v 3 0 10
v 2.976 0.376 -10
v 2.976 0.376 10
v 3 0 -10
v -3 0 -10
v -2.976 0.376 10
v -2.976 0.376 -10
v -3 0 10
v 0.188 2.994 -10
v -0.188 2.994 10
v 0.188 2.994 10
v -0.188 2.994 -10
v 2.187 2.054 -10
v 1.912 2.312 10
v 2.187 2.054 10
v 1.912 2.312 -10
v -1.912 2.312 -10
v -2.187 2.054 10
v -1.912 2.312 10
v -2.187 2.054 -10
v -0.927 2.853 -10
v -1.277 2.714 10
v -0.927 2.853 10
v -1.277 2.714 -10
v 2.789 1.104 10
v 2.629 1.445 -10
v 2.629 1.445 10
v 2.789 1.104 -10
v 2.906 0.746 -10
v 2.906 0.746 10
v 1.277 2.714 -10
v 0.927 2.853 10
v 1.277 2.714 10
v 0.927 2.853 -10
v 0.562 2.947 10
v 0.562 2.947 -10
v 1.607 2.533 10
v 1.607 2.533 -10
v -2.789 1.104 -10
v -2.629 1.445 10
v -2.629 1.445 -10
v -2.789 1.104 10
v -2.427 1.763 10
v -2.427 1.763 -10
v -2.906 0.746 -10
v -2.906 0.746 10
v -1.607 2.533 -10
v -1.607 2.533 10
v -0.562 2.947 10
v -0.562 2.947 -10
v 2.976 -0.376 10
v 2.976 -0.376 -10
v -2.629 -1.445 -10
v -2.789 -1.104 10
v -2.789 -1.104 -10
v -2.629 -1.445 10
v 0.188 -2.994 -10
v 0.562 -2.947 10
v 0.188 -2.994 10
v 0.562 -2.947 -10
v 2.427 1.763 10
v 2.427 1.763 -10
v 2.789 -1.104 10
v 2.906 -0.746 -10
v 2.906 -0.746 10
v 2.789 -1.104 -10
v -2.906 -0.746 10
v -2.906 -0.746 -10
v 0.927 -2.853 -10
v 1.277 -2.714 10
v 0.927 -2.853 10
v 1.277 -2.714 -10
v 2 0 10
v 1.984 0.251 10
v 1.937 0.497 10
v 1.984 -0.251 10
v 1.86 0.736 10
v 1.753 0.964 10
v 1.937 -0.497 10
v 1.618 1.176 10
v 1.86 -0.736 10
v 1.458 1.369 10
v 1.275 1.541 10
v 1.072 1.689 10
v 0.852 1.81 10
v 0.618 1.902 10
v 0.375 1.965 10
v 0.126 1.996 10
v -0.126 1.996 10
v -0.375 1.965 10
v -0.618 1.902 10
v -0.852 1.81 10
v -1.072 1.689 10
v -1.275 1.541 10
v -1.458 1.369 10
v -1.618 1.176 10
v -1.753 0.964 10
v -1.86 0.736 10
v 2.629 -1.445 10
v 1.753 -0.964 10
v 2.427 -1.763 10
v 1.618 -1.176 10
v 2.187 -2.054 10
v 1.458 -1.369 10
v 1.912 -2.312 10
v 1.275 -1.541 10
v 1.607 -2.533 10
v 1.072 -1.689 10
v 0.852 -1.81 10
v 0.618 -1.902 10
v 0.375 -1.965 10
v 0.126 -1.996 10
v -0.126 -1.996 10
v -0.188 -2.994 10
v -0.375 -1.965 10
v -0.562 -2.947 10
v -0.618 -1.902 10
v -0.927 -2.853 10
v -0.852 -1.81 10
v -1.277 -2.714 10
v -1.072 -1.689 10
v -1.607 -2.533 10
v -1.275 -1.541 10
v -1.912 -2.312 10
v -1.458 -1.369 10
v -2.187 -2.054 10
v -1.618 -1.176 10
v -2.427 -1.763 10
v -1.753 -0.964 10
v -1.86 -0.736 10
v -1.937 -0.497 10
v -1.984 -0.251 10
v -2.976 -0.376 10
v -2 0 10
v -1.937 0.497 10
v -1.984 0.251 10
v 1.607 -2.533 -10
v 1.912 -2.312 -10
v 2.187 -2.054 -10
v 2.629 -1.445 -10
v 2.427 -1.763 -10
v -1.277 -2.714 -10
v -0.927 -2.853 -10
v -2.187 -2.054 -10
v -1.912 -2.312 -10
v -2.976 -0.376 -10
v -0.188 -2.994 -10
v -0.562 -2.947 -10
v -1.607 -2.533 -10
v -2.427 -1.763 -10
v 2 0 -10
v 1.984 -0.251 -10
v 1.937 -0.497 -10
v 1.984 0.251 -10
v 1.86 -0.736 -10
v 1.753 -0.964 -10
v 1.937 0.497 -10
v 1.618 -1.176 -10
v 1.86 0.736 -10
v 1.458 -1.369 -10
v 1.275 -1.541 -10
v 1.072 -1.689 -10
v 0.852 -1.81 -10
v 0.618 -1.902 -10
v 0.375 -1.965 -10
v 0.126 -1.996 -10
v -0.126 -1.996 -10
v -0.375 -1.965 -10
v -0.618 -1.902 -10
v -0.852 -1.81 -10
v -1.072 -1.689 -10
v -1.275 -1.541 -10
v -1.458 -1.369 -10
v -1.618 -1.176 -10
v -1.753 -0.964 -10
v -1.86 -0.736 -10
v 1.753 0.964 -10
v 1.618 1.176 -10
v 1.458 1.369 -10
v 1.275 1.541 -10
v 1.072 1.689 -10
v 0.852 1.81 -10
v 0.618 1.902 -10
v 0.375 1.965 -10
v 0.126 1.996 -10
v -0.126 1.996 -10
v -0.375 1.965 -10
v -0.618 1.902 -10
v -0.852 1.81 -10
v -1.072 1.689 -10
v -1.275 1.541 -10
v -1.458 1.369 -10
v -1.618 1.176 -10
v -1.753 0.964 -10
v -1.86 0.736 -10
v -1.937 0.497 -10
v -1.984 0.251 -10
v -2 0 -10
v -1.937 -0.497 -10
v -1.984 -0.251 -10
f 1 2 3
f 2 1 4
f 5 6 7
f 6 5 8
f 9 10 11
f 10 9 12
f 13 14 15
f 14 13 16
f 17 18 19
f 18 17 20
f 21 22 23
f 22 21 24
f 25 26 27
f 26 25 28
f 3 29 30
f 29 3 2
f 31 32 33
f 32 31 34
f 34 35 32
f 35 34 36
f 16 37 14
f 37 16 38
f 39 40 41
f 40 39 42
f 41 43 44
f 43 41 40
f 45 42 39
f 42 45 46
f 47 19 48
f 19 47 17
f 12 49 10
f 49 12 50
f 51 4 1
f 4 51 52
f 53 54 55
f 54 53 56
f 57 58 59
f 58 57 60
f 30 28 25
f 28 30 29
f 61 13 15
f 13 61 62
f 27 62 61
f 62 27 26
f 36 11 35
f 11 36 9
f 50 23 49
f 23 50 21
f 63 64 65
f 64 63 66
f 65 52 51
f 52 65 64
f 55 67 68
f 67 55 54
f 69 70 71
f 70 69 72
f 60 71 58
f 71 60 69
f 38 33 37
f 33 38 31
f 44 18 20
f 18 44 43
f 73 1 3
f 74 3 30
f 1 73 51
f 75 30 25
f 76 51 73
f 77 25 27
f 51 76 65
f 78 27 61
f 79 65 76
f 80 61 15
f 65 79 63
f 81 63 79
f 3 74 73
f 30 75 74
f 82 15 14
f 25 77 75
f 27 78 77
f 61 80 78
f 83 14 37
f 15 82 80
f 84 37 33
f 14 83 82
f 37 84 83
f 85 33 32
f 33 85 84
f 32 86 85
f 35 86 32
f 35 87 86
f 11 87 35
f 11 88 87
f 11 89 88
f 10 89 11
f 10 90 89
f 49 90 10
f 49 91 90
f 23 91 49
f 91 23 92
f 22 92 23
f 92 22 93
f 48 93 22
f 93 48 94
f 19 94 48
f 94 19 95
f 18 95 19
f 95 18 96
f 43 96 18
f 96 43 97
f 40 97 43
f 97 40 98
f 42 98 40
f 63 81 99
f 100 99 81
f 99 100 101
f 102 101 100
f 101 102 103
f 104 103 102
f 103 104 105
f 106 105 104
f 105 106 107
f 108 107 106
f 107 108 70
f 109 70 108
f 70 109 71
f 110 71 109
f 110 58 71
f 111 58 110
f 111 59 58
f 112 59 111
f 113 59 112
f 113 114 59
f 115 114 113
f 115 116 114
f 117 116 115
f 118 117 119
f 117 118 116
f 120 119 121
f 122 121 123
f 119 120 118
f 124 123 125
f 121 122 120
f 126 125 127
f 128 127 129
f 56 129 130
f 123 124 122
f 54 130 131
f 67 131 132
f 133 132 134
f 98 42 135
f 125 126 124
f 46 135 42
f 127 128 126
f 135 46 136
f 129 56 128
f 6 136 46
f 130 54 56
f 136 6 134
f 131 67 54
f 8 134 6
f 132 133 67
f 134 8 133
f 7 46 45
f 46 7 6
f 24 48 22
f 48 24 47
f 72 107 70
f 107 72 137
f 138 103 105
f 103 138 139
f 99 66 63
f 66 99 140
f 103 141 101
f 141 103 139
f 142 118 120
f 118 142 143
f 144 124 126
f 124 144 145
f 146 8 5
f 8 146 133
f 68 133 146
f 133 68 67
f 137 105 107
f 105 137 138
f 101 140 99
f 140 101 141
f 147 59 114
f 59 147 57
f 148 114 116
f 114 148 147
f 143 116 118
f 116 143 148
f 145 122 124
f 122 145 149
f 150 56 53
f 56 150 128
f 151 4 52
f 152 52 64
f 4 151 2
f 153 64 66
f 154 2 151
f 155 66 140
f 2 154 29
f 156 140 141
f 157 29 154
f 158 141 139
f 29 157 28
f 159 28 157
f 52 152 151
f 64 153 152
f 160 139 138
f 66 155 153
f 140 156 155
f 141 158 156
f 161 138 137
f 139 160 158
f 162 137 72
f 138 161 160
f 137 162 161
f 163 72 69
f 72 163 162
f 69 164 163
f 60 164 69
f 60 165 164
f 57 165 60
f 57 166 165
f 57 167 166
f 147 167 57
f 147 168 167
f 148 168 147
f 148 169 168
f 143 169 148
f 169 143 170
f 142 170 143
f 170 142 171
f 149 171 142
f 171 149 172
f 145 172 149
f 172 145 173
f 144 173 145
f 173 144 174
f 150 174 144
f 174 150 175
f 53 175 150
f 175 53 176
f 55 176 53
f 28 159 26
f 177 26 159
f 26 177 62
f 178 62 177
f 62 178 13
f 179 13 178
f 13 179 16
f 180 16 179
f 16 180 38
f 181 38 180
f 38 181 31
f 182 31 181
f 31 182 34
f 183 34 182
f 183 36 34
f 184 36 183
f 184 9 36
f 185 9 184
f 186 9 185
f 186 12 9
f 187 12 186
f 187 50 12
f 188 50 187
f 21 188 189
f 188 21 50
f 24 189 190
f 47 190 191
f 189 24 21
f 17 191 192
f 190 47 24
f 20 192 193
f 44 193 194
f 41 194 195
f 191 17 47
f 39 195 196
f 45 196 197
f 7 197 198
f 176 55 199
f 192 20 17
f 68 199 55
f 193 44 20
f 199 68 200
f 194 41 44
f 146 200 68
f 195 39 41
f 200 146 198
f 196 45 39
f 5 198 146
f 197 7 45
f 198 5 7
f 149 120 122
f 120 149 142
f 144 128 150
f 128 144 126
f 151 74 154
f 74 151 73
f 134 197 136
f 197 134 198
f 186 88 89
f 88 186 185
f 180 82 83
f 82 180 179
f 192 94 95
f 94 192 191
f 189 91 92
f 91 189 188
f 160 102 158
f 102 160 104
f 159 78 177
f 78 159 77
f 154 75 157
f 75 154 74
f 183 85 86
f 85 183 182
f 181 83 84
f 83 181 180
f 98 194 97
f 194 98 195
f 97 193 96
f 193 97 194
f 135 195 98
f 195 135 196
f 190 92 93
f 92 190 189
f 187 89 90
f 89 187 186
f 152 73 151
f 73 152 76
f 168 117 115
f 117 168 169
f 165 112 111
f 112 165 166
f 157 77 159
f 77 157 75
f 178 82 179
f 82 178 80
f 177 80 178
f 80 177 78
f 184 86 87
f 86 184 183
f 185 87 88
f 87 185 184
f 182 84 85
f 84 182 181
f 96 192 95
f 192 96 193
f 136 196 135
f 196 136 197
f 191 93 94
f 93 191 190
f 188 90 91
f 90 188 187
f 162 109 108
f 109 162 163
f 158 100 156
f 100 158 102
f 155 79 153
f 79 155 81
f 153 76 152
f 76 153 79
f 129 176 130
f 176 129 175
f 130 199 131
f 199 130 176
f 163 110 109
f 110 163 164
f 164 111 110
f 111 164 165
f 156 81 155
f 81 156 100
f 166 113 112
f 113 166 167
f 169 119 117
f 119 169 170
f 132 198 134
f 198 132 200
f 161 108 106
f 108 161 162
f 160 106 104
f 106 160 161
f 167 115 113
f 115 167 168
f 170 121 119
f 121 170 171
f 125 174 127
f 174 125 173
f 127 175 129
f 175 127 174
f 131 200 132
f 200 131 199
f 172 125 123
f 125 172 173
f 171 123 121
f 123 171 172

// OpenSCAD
$fn = 50;


difference() {
	union() {
		translate(v = [0, 0, -10.0000000000]) {
			cylinder(h = 20, r = 3.0000000000);
		}
	}
	union() {
		translate(v = [0, 0, -100.0000000000]) {
			cylinder(h = 200, r = 2.0000000000);
		}
	}
}
